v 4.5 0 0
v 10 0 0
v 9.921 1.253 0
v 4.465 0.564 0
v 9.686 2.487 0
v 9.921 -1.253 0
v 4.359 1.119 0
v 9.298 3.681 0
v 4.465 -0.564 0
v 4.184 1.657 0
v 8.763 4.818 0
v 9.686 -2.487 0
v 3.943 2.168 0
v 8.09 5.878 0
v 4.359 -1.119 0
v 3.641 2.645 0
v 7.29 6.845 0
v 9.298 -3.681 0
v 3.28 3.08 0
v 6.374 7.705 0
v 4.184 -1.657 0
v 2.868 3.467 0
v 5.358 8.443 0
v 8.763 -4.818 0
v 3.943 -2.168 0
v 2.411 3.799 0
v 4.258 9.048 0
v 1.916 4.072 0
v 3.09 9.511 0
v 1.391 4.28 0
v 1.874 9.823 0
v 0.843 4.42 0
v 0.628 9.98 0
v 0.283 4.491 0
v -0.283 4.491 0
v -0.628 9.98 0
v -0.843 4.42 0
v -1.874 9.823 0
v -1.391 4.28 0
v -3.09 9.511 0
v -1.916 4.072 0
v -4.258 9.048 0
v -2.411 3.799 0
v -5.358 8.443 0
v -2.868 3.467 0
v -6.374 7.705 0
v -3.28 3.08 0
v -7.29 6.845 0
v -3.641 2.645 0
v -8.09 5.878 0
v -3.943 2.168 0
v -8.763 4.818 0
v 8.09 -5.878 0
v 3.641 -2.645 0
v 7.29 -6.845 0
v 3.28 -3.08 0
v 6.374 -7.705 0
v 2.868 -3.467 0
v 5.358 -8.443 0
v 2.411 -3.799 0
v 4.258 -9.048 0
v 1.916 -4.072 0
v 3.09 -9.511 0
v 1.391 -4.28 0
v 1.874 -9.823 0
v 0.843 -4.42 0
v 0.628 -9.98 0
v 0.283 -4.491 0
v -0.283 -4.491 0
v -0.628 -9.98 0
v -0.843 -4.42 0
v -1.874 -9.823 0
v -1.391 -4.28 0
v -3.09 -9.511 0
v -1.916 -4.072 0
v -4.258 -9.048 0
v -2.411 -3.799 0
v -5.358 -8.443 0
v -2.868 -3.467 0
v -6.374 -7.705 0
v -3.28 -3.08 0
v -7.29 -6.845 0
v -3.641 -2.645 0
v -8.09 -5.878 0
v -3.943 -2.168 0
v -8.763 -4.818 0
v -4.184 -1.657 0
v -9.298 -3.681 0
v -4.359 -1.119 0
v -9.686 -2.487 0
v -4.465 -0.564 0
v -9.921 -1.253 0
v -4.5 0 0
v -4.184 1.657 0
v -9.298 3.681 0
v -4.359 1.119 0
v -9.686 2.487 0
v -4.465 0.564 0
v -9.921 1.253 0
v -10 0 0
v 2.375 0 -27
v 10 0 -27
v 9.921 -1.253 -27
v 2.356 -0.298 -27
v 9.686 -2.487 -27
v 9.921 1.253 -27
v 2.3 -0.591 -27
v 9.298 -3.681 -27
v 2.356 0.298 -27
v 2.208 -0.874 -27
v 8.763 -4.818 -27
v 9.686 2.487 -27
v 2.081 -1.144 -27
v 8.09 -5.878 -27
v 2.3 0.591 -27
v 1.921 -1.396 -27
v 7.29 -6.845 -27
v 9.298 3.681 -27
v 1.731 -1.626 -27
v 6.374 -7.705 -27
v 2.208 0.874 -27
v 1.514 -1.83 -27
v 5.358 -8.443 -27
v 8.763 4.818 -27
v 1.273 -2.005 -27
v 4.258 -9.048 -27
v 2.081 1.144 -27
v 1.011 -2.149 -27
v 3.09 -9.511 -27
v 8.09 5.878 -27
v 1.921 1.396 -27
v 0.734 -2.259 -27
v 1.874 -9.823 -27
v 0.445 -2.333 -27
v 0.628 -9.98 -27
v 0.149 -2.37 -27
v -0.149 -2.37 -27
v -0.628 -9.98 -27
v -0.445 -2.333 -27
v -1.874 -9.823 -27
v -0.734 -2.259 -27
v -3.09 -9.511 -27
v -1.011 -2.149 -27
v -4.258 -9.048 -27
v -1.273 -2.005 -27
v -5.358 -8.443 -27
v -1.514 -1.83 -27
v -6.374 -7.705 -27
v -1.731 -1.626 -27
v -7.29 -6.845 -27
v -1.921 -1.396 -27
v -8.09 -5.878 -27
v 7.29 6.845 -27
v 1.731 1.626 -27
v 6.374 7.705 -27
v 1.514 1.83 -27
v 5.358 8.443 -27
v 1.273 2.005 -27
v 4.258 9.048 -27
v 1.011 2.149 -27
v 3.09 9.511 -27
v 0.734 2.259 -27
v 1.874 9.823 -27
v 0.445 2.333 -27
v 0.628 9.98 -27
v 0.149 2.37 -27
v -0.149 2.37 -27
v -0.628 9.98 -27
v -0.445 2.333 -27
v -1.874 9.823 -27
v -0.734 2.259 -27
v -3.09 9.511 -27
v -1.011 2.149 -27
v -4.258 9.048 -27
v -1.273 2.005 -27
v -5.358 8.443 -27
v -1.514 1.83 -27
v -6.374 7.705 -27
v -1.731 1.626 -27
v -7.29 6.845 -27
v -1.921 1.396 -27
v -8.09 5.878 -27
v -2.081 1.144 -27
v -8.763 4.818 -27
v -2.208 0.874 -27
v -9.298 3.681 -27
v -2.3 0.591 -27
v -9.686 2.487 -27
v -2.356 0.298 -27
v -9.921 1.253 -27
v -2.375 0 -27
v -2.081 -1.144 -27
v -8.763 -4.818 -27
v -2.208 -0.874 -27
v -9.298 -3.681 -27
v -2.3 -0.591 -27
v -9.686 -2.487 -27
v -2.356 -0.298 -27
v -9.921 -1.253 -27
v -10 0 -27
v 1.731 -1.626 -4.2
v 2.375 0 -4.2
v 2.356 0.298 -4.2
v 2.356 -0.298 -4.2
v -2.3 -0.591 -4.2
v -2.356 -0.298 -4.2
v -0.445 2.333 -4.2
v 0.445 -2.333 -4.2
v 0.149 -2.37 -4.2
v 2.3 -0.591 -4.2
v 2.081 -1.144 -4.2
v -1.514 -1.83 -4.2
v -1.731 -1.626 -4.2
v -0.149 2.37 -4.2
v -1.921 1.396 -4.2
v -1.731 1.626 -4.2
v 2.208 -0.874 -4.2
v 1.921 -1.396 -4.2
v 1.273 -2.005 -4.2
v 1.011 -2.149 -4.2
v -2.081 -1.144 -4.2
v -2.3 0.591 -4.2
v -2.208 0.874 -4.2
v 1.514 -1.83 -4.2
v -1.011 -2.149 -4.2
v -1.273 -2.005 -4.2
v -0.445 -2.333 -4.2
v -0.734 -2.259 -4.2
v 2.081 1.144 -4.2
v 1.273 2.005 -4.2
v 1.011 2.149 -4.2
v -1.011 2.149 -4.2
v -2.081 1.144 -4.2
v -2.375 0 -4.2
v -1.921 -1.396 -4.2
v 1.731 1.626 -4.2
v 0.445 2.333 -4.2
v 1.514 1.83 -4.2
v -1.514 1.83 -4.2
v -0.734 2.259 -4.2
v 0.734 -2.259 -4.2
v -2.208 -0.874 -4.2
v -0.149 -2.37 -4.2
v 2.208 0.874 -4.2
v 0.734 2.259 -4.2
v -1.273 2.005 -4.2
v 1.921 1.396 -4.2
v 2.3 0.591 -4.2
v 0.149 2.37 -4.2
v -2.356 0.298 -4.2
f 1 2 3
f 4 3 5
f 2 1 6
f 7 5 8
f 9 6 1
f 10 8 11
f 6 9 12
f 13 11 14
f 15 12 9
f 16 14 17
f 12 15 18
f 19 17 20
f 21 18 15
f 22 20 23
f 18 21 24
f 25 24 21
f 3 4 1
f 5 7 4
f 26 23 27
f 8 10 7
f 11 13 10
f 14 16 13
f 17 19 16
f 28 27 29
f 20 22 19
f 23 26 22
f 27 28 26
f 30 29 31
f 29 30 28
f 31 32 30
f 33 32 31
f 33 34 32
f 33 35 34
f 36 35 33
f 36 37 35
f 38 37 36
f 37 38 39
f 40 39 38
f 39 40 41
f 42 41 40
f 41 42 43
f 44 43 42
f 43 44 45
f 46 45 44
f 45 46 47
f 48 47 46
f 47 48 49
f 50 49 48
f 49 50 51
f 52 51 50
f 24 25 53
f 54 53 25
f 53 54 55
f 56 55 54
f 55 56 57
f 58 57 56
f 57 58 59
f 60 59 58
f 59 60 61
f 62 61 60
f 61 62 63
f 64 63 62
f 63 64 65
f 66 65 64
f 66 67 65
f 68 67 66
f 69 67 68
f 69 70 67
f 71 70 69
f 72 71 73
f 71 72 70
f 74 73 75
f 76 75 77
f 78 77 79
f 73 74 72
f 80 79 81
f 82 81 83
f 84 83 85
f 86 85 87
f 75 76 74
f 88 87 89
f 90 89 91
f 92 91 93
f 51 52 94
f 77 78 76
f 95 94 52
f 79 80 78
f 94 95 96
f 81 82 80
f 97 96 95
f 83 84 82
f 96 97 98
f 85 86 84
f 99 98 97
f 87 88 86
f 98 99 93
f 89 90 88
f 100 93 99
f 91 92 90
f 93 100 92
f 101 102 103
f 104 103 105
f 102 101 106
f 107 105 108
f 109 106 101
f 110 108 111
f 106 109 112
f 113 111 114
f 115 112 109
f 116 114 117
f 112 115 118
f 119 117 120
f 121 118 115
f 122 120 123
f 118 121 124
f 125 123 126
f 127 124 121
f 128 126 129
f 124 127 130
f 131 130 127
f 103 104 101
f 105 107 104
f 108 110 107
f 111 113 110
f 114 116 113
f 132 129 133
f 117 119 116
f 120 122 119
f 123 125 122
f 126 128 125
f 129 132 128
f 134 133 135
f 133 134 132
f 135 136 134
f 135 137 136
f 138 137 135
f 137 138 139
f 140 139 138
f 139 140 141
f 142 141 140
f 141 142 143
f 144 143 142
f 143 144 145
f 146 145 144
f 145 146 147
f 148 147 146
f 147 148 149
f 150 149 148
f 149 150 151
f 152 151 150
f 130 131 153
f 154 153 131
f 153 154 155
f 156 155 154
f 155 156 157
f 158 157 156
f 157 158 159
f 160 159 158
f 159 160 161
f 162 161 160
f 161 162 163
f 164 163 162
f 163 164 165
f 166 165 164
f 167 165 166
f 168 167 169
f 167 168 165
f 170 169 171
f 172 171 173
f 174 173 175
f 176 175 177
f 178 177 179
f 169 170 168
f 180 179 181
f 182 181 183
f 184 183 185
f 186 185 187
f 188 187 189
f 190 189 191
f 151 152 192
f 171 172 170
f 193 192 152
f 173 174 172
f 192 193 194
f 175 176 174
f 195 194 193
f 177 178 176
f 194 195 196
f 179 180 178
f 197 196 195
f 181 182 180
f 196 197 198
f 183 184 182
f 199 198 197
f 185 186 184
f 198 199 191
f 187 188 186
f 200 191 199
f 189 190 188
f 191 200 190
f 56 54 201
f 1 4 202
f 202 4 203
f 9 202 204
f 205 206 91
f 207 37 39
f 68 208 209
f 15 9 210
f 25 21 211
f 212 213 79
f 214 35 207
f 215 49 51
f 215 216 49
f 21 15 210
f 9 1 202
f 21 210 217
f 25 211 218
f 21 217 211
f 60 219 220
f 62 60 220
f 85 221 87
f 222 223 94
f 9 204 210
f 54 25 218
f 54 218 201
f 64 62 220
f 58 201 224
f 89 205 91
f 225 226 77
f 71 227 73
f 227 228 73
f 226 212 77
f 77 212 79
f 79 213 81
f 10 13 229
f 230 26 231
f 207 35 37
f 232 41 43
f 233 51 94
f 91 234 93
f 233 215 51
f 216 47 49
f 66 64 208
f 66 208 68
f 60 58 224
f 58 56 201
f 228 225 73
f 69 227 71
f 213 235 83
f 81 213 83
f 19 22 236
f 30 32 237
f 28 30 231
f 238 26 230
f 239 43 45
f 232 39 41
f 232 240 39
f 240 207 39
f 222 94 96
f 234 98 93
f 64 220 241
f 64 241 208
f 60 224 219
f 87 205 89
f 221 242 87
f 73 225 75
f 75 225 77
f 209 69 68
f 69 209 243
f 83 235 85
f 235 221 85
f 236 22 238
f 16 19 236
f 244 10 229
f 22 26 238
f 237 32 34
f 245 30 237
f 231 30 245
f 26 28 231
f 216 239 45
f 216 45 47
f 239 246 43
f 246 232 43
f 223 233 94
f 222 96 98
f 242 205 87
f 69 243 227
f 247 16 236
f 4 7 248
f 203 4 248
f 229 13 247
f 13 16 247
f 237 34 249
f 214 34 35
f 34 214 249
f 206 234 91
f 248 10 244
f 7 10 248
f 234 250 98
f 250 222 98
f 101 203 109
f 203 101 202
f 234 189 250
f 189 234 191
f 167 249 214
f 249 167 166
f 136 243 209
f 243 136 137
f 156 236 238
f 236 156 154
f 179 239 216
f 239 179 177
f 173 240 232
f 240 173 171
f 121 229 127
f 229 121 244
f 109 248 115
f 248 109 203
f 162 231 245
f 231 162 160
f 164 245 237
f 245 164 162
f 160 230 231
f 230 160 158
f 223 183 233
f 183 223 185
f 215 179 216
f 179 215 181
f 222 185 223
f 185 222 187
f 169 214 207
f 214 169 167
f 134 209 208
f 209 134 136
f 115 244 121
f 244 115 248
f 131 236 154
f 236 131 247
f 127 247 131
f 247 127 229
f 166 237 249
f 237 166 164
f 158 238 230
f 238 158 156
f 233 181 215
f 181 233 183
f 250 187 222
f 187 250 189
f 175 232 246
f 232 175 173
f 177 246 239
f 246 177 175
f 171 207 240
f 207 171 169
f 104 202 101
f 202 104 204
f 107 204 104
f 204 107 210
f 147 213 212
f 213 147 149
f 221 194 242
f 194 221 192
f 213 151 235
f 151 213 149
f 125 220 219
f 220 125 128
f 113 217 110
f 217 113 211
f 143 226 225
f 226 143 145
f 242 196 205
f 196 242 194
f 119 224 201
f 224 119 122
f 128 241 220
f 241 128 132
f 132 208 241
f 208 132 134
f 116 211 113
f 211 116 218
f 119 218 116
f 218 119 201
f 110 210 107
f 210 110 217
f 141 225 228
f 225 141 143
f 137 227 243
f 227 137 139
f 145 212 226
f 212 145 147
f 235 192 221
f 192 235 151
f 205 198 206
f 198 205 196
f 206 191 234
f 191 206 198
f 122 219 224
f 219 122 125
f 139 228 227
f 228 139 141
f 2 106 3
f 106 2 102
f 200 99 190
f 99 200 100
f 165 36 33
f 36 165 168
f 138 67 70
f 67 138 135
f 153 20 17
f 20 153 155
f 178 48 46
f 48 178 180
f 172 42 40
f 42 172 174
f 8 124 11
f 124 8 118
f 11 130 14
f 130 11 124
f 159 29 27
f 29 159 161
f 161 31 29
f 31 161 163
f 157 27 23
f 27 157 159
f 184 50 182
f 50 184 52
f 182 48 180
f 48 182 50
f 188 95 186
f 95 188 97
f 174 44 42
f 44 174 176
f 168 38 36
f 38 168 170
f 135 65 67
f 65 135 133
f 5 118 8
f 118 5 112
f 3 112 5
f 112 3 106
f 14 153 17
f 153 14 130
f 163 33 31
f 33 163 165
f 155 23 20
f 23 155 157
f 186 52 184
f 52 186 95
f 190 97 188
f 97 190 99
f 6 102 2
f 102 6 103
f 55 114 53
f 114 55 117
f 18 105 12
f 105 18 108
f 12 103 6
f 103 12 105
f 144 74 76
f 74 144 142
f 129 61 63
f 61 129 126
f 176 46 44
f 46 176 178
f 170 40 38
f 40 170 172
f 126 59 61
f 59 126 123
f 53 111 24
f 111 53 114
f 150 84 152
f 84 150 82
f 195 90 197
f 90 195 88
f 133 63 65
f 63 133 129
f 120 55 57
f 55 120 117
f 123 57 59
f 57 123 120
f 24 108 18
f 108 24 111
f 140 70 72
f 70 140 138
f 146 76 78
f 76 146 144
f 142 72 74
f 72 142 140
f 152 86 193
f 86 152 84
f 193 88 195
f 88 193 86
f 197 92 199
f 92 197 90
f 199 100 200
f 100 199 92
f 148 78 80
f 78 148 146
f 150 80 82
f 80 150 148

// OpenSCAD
$fn = 50;


difference() {
	union() {
		translate(v = [0, 0, -27.0000000000]) {
			cylinder(h = 27, r = 10.0000000000);
		}
		cylinder(h = 0, r = 20.0000000000);
	}
	union() {
		translate(v = [0, 0, 0]) {
			rotate(a = [0, 0, 0]) {
				difference() {
					union() {
						#translate(v = [0, 0, -27.0000000000]) {
							cylinder(h = 27, r = 2.2500000000);
						}
						#translate(v = [0, 0, -4.2000000000]) {
							cylinder(h = 4.2000000000, r1 = 2.3750000000, r2 = 4.5000000000);
						}
						#translate(v = [0, 0, -27.0000000000]) {
							cylinder(h = 27, r = 2.3750000000);
						}
						#translate(v = [0, 0, -27.0000000000]) {
							cylinder(h = 27, r = 2.2500000000);
						}
					}
					union();
				}
			}
		}
	}
}
